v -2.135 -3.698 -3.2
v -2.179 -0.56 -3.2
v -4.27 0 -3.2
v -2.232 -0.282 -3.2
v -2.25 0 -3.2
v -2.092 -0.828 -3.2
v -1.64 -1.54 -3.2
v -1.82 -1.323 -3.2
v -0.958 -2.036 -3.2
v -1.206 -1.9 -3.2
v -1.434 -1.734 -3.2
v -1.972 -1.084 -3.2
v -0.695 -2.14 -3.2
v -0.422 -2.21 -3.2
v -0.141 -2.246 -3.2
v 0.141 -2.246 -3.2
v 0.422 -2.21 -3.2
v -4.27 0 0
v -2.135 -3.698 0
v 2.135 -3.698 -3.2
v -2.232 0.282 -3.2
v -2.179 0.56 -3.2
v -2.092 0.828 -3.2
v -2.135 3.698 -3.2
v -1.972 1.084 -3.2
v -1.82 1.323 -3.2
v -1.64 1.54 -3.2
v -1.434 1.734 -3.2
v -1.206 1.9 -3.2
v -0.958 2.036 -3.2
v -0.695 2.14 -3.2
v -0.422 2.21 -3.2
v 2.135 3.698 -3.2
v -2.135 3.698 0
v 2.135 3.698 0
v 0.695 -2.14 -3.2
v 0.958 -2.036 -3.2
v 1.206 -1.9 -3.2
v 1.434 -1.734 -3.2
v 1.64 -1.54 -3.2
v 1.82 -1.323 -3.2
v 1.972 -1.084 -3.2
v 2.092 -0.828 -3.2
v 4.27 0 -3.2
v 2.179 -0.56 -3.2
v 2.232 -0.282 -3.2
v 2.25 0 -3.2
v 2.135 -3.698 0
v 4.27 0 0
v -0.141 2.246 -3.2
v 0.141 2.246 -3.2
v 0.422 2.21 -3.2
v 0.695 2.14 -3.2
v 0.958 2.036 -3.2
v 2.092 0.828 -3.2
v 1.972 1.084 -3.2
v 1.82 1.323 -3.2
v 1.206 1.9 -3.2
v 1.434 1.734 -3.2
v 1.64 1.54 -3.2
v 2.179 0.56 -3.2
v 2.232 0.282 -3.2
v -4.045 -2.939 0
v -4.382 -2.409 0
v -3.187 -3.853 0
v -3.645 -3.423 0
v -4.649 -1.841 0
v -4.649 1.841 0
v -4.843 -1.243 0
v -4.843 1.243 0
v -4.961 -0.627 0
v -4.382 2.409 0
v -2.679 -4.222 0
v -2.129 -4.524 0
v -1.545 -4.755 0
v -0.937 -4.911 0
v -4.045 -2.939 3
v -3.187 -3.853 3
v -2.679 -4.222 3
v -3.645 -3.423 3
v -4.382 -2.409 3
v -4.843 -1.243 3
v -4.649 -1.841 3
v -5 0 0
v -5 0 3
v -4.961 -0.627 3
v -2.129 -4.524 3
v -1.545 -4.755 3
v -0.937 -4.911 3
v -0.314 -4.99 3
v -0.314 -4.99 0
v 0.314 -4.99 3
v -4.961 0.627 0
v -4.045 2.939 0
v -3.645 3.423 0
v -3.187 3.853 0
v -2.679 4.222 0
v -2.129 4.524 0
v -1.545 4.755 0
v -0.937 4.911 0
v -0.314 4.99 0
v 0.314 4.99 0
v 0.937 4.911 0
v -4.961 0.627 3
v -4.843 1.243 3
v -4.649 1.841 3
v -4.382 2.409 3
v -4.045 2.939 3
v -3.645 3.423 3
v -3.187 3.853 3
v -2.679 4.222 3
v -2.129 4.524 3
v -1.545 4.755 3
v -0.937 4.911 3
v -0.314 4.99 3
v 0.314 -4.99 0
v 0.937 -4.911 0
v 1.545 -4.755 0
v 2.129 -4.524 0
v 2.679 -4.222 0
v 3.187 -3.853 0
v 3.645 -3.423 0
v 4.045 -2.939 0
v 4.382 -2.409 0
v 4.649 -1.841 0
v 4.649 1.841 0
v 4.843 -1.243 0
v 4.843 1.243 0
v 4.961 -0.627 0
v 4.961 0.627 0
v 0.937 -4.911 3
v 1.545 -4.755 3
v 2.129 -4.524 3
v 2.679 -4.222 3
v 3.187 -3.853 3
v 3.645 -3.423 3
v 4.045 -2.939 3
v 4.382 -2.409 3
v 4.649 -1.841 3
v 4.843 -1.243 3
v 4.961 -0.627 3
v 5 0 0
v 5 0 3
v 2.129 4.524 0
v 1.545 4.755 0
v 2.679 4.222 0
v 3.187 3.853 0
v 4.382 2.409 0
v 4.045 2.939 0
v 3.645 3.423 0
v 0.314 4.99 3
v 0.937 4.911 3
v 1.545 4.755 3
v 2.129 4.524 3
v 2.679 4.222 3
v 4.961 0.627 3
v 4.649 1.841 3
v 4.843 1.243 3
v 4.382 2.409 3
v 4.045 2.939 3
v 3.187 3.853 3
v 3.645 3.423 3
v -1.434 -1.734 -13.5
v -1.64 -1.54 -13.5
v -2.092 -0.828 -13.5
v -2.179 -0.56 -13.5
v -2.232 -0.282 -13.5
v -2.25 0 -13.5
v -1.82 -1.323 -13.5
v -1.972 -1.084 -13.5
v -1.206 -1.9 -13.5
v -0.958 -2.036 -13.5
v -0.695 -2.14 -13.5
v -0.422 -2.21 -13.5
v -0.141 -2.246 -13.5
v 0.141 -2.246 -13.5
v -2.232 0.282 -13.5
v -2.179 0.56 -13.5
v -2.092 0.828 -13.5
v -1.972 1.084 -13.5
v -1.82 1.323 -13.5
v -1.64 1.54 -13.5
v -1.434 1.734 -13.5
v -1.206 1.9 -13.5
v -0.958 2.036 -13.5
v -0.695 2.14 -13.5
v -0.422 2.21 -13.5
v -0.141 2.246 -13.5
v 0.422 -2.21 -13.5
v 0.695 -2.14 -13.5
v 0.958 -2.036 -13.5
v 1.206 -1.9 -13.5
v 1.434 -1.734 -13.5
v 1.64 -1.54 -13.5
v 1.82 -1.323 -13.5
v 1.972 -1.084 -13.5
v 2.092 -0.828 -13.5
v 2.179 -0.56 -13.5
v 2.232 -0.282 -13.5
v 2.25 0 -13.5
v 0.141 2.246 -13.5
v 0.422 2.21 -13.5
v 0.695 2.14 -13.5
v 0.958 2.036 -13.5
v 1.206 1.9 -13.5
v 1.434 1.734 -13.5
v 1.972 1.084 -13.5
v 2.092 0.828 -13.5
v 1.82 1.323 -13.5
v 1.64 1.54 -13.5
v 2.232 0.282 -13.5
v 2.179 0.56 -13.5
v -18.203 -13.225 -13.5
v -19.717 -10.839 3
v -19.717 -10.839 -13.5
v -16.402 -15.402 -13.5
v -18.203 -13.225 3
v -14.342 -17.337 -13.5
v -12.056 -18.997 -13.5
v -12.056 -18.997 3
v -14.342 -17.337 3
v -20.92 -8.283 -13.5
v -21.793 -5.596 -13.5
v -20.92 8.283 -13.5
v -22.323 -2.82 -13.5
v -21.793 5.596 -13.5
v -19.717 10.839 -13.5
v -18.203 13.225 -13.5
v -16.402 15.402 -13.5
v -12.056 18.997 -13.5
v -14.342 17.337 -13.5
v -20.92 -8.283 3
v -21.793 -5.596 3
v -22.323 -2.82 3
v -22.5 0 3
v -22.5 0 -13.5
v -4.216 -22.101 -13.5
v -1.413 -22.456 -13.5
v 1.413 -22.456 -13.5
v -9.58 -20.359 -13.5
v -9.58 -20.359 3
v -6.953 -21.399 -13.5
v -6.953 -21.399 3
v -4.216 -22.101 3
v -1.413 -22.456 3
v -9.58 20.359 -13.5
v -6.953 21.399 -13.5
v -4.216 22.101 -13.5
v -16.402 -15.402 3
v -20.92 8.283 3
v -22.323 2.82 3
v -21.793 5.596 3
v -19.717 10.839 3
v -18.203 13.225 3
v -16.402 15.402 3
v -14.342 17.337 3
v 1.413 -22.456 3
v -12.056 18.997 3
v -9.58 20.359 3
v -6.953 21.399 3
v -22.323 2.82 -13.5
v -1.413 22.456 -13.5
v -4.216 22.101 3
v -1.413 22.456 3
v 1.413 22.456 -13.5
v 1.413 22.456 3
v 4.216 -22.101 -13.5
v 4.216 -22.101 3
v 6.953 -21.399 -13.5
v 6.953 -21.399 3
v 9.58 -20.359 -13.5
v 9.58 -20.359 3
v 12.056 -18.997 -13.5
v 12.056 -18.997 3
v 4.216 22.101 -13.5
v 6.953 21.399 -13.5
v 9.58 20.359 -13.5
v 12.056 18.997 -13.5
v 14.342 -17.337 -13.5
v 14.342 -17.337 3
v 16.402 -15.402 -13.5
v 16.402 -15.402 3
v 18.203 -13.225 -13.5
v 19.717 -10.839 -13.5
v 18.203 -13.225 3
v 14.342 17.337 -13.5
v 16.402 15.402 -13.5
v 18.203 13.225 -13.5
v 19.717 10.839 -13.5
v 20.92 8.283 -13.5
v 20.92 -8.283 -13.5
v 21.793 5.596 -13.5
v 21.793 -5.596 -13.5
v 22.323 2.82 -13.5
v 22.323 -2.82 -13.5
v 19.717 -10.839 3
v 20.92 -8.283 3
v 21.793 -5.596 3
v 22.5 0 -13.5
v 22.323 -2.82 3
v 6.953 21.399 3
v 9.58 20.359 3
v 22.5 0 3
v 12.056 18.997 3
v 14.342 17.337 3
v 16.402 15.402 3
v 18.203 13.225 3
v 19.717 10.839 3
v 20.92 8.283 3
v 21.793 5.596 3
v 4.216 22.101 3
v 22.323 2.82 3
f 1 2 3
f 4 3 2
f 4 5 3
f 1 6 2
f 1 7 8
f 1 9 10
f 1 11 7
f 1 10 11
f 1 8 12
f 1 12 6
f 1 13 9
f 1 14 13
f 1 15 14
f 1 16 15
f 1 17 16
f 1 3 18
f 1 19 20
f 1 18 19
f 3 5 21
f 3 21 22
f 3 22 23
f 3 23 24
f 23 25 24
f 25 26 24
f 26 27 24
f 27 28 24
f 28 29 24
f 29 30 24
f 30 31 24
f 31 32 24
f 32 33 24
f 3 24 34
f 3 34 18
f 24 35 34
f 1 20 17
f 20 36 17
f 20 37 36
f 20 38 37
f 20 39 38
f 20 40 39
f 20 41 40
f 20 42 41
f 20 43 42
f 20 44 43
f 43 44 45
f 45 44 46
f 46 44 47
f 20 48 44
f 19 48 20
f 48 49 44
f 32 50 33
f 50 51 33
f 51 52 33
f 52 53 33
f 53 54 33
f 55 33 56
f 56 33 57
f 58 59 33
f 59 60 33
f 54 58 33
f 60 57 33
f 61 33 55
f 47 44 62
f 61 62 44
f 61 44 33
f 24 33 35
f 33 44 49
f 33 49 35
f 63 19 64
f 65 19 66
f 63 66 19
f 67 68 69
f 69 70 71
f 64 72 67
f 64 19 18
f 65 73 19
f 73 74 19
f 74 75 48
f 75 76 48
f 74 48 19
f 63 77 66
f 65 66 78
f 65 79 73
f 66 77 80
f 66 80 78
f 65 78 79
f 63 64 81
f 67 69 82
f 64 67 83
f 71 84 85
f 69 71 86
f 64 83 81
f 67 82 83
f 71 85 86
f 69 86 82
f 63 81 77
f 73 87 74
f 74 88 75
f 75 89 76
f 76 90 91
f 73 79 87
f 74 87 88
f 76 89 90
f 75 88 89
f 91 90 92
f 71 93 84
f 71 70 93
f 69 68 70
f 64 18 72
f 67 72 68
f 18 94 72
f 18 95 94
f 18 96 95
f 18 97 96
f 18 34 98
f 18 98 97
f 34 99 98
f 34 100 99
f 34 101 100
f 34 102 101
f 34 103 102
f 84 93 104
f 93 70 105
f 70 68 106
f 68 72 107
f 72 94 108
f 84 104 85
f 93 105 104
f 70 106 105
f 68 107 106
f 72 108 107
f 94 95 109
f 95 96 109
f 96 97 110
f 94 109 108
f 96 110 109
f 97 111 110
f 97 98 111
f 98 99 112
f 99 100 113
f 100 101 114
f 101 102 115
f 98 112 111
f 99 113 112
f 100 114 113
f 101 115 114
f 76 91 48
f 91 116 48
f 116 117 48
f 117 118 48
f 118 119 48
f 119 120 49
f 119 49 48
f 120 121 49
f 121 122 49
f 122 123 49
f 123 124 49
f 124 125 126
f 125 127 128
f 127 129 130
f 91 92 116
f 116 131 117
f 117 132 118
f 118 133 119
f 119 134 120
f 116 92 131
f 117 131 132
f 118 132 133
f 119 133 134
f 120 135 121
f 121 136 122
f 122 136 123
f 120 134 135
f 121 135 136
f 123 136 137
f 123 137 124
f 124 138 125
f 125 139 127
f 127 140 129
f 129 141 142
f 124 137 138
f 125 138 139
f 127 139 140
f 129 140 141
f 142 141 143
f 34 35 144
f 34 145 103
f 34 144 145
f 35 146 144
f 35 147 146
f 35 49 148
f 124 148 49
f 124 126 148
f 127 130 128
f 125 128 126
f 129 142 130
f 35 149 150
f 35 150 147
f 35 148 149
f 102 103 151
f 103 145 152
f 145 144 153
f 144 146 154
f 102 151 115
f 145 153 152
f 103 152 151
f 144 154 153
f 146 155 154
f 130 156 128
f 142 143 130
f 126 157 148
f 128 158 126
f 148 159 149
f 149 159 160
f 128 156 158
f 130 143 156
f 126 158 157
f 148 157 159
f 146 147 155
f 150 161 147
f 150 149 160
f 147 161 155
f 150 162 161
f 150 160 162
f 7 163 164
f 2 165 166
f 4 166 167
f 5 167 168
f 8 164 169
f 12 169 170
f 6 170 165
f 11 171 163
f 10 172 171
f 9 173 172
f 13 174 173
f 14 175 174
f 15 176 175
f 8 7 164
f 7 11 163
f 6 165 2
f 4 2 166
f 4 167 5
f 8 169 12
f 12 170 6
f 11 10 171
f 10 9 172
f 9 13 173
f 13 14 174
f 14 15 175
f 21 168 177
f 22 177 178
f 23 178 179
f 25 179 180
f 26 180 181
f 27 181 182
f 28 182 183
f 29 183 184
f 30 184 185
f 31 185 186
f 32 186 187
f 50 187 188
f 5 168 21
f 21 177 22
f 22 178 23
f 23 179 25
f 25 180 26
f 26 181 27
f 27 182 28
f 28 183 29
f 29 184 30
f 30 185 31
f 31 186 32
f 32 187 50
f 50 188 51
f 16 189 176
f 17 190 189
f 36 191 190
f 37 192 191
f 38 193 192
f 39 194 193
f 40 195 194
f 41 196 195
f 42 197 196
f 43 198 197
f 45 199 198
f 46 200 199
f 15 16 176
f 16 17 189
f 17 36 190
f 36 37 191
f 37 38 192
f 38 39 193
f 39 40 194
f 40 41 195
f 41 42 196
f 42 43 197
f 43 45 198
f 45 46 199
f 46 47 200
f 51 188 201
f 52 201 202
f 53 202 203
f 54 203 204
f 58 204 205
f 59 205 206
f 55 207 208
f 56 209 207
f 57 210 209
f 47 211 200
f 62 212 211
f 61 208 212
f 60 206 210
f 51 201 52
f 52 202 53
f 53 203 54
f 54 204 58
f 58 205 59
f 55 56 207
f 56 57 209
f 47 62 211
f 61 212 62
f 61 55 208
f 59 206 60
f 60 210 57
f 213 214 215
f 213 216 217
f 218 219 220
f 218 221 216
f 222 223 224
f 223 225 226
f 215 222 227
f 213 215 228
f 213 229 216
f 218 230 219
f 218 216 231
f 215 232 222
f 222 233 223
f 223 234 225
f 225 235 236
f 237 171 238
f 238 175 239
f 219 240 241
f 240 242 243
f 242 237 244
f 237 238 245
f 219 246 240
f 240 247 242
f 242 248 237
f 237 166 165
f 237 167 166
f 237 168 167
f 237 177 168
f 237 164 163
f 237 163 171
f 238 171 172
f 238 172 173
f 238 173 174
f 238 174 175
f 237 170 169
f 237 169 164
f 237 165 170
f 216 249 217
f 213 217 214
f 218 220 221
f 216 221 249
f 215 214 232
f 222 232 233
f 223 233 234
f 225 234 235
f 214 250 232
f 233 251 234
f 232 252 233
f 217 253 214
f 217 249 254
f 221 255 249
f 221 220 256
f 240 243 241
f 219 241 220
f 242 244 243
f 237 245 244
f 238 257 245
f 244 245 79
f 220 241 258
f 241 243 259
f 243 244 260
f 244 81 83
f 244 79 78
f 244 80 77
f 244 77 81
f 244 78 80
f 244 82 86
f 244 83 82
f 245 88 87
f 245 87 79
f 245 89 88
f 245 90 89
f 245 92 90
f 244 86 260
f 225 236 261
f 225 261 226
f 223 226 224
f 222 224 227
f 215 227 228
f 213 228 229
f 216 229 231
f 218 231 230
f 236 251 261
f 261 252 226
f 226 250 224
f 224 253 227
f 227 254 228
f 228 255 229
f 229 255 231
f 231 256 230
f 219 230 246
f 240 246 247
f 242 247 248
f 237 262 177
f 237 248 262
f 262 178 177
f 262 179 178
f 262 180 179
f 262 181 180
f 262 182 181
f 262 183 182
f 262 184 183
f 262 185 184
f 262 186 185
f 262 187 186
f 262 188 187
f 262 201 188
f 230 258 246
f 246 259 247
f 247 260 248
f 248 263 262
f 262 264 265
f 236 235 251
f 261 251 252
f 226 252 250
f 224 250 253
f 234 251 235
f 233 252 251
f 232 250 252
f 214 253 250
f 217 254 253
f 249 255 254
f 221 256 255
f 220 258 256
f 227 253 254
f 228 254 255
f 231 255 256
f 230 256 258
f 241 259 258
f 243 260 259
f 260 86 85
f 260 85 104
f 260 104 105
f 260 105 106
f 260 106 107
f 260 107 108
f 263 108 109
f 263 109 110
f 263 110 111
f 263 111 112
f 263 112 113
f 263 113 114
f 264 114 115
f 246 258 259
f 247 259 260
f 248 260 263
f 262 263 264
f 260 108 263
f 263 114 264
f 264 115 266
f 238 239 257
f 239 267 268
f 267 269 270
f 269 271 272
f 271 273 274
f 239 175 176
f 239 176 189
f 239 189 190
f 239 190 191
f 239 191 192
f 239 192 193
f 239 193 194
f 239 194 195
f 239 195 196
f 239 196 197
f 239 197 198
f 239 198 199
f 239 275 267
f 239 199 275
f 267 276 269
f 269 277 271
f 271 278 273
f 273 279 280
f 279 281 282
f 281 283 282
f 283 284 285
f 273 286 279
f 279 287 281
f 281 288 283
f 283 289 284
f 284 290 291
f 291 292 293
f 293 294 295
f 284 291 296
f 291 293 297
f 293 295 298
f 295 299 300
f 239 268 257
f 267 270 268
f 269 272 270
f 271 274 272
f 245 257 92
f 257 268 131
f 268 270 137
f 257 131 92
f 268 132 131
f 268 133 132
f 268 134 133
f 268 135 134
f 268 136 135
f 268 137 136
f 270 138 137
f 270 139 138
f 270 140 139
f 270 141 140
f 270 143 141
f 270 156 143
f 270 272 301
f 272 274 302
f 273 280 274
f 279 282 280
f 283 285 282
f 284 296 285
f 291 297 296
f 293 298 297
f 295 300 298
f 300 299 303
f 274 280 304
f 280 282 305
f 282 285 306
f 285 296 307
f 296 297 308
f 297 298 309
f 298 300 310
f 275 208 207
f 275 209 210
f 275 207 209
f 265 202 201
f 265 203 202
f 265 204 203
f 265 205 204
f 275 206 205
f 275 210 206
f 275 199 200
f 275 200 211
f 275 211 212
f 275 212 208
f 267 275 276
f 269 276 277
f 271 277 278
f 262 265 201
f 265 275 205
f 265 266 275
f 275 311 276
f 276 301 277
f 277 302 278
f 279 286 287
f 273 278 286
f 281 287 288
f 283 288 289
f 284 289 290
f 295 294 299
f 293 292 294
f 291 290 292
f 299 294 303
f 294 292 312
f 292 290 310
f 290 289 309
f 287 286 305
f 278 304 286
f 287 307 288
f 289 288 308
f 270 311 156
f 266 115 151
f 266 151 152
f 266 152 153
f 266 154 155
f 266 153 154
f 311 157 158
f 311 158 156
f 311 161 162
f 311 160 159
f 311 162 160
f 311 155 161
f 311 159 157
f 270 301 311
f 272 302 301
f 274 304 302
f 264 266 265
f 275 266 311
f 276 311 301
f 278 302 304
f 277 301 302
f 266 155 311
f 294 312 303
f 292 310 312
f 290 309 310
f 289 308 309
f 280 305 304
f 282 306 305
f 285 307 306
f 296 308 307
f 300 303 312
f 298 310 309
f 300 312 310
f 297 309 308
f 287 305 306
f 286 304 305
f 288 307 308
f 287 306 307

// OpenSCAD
$fn = 50;

difference() {
	union() {
		translate(v = [0, 0, -13.5]) {
			cylinder(h = 16.5, r = 22.5);
		}
	}
	union() {
		translate(v = [0, 0, 0]) {
			rotate(a = [0, 0, 0]) {
				difference() {
					union() {
						translate(v = [0, 0, -3.2]) {
							linear_extrude(height = 3.2) {
								polygon(points = [[4.2698, 0.0], [2.1349000000000005, 3.697755269078796], [-2.134899999999999, 3.6977552690787965], [-4.2698, 5.228996902999369e-16], [-2.134900000000002, -3.6977552690787956], [2.1348999999999974, -3.697755269078798]]);
							}
						}
					}
					union();
				}
			}
		}
		#cylinder(h = 3, r = 5.0);
		#translate(v = [0, 0, -100.0]) {
			cylinder(h = 200, r = 2.25);
		}
	}
}
